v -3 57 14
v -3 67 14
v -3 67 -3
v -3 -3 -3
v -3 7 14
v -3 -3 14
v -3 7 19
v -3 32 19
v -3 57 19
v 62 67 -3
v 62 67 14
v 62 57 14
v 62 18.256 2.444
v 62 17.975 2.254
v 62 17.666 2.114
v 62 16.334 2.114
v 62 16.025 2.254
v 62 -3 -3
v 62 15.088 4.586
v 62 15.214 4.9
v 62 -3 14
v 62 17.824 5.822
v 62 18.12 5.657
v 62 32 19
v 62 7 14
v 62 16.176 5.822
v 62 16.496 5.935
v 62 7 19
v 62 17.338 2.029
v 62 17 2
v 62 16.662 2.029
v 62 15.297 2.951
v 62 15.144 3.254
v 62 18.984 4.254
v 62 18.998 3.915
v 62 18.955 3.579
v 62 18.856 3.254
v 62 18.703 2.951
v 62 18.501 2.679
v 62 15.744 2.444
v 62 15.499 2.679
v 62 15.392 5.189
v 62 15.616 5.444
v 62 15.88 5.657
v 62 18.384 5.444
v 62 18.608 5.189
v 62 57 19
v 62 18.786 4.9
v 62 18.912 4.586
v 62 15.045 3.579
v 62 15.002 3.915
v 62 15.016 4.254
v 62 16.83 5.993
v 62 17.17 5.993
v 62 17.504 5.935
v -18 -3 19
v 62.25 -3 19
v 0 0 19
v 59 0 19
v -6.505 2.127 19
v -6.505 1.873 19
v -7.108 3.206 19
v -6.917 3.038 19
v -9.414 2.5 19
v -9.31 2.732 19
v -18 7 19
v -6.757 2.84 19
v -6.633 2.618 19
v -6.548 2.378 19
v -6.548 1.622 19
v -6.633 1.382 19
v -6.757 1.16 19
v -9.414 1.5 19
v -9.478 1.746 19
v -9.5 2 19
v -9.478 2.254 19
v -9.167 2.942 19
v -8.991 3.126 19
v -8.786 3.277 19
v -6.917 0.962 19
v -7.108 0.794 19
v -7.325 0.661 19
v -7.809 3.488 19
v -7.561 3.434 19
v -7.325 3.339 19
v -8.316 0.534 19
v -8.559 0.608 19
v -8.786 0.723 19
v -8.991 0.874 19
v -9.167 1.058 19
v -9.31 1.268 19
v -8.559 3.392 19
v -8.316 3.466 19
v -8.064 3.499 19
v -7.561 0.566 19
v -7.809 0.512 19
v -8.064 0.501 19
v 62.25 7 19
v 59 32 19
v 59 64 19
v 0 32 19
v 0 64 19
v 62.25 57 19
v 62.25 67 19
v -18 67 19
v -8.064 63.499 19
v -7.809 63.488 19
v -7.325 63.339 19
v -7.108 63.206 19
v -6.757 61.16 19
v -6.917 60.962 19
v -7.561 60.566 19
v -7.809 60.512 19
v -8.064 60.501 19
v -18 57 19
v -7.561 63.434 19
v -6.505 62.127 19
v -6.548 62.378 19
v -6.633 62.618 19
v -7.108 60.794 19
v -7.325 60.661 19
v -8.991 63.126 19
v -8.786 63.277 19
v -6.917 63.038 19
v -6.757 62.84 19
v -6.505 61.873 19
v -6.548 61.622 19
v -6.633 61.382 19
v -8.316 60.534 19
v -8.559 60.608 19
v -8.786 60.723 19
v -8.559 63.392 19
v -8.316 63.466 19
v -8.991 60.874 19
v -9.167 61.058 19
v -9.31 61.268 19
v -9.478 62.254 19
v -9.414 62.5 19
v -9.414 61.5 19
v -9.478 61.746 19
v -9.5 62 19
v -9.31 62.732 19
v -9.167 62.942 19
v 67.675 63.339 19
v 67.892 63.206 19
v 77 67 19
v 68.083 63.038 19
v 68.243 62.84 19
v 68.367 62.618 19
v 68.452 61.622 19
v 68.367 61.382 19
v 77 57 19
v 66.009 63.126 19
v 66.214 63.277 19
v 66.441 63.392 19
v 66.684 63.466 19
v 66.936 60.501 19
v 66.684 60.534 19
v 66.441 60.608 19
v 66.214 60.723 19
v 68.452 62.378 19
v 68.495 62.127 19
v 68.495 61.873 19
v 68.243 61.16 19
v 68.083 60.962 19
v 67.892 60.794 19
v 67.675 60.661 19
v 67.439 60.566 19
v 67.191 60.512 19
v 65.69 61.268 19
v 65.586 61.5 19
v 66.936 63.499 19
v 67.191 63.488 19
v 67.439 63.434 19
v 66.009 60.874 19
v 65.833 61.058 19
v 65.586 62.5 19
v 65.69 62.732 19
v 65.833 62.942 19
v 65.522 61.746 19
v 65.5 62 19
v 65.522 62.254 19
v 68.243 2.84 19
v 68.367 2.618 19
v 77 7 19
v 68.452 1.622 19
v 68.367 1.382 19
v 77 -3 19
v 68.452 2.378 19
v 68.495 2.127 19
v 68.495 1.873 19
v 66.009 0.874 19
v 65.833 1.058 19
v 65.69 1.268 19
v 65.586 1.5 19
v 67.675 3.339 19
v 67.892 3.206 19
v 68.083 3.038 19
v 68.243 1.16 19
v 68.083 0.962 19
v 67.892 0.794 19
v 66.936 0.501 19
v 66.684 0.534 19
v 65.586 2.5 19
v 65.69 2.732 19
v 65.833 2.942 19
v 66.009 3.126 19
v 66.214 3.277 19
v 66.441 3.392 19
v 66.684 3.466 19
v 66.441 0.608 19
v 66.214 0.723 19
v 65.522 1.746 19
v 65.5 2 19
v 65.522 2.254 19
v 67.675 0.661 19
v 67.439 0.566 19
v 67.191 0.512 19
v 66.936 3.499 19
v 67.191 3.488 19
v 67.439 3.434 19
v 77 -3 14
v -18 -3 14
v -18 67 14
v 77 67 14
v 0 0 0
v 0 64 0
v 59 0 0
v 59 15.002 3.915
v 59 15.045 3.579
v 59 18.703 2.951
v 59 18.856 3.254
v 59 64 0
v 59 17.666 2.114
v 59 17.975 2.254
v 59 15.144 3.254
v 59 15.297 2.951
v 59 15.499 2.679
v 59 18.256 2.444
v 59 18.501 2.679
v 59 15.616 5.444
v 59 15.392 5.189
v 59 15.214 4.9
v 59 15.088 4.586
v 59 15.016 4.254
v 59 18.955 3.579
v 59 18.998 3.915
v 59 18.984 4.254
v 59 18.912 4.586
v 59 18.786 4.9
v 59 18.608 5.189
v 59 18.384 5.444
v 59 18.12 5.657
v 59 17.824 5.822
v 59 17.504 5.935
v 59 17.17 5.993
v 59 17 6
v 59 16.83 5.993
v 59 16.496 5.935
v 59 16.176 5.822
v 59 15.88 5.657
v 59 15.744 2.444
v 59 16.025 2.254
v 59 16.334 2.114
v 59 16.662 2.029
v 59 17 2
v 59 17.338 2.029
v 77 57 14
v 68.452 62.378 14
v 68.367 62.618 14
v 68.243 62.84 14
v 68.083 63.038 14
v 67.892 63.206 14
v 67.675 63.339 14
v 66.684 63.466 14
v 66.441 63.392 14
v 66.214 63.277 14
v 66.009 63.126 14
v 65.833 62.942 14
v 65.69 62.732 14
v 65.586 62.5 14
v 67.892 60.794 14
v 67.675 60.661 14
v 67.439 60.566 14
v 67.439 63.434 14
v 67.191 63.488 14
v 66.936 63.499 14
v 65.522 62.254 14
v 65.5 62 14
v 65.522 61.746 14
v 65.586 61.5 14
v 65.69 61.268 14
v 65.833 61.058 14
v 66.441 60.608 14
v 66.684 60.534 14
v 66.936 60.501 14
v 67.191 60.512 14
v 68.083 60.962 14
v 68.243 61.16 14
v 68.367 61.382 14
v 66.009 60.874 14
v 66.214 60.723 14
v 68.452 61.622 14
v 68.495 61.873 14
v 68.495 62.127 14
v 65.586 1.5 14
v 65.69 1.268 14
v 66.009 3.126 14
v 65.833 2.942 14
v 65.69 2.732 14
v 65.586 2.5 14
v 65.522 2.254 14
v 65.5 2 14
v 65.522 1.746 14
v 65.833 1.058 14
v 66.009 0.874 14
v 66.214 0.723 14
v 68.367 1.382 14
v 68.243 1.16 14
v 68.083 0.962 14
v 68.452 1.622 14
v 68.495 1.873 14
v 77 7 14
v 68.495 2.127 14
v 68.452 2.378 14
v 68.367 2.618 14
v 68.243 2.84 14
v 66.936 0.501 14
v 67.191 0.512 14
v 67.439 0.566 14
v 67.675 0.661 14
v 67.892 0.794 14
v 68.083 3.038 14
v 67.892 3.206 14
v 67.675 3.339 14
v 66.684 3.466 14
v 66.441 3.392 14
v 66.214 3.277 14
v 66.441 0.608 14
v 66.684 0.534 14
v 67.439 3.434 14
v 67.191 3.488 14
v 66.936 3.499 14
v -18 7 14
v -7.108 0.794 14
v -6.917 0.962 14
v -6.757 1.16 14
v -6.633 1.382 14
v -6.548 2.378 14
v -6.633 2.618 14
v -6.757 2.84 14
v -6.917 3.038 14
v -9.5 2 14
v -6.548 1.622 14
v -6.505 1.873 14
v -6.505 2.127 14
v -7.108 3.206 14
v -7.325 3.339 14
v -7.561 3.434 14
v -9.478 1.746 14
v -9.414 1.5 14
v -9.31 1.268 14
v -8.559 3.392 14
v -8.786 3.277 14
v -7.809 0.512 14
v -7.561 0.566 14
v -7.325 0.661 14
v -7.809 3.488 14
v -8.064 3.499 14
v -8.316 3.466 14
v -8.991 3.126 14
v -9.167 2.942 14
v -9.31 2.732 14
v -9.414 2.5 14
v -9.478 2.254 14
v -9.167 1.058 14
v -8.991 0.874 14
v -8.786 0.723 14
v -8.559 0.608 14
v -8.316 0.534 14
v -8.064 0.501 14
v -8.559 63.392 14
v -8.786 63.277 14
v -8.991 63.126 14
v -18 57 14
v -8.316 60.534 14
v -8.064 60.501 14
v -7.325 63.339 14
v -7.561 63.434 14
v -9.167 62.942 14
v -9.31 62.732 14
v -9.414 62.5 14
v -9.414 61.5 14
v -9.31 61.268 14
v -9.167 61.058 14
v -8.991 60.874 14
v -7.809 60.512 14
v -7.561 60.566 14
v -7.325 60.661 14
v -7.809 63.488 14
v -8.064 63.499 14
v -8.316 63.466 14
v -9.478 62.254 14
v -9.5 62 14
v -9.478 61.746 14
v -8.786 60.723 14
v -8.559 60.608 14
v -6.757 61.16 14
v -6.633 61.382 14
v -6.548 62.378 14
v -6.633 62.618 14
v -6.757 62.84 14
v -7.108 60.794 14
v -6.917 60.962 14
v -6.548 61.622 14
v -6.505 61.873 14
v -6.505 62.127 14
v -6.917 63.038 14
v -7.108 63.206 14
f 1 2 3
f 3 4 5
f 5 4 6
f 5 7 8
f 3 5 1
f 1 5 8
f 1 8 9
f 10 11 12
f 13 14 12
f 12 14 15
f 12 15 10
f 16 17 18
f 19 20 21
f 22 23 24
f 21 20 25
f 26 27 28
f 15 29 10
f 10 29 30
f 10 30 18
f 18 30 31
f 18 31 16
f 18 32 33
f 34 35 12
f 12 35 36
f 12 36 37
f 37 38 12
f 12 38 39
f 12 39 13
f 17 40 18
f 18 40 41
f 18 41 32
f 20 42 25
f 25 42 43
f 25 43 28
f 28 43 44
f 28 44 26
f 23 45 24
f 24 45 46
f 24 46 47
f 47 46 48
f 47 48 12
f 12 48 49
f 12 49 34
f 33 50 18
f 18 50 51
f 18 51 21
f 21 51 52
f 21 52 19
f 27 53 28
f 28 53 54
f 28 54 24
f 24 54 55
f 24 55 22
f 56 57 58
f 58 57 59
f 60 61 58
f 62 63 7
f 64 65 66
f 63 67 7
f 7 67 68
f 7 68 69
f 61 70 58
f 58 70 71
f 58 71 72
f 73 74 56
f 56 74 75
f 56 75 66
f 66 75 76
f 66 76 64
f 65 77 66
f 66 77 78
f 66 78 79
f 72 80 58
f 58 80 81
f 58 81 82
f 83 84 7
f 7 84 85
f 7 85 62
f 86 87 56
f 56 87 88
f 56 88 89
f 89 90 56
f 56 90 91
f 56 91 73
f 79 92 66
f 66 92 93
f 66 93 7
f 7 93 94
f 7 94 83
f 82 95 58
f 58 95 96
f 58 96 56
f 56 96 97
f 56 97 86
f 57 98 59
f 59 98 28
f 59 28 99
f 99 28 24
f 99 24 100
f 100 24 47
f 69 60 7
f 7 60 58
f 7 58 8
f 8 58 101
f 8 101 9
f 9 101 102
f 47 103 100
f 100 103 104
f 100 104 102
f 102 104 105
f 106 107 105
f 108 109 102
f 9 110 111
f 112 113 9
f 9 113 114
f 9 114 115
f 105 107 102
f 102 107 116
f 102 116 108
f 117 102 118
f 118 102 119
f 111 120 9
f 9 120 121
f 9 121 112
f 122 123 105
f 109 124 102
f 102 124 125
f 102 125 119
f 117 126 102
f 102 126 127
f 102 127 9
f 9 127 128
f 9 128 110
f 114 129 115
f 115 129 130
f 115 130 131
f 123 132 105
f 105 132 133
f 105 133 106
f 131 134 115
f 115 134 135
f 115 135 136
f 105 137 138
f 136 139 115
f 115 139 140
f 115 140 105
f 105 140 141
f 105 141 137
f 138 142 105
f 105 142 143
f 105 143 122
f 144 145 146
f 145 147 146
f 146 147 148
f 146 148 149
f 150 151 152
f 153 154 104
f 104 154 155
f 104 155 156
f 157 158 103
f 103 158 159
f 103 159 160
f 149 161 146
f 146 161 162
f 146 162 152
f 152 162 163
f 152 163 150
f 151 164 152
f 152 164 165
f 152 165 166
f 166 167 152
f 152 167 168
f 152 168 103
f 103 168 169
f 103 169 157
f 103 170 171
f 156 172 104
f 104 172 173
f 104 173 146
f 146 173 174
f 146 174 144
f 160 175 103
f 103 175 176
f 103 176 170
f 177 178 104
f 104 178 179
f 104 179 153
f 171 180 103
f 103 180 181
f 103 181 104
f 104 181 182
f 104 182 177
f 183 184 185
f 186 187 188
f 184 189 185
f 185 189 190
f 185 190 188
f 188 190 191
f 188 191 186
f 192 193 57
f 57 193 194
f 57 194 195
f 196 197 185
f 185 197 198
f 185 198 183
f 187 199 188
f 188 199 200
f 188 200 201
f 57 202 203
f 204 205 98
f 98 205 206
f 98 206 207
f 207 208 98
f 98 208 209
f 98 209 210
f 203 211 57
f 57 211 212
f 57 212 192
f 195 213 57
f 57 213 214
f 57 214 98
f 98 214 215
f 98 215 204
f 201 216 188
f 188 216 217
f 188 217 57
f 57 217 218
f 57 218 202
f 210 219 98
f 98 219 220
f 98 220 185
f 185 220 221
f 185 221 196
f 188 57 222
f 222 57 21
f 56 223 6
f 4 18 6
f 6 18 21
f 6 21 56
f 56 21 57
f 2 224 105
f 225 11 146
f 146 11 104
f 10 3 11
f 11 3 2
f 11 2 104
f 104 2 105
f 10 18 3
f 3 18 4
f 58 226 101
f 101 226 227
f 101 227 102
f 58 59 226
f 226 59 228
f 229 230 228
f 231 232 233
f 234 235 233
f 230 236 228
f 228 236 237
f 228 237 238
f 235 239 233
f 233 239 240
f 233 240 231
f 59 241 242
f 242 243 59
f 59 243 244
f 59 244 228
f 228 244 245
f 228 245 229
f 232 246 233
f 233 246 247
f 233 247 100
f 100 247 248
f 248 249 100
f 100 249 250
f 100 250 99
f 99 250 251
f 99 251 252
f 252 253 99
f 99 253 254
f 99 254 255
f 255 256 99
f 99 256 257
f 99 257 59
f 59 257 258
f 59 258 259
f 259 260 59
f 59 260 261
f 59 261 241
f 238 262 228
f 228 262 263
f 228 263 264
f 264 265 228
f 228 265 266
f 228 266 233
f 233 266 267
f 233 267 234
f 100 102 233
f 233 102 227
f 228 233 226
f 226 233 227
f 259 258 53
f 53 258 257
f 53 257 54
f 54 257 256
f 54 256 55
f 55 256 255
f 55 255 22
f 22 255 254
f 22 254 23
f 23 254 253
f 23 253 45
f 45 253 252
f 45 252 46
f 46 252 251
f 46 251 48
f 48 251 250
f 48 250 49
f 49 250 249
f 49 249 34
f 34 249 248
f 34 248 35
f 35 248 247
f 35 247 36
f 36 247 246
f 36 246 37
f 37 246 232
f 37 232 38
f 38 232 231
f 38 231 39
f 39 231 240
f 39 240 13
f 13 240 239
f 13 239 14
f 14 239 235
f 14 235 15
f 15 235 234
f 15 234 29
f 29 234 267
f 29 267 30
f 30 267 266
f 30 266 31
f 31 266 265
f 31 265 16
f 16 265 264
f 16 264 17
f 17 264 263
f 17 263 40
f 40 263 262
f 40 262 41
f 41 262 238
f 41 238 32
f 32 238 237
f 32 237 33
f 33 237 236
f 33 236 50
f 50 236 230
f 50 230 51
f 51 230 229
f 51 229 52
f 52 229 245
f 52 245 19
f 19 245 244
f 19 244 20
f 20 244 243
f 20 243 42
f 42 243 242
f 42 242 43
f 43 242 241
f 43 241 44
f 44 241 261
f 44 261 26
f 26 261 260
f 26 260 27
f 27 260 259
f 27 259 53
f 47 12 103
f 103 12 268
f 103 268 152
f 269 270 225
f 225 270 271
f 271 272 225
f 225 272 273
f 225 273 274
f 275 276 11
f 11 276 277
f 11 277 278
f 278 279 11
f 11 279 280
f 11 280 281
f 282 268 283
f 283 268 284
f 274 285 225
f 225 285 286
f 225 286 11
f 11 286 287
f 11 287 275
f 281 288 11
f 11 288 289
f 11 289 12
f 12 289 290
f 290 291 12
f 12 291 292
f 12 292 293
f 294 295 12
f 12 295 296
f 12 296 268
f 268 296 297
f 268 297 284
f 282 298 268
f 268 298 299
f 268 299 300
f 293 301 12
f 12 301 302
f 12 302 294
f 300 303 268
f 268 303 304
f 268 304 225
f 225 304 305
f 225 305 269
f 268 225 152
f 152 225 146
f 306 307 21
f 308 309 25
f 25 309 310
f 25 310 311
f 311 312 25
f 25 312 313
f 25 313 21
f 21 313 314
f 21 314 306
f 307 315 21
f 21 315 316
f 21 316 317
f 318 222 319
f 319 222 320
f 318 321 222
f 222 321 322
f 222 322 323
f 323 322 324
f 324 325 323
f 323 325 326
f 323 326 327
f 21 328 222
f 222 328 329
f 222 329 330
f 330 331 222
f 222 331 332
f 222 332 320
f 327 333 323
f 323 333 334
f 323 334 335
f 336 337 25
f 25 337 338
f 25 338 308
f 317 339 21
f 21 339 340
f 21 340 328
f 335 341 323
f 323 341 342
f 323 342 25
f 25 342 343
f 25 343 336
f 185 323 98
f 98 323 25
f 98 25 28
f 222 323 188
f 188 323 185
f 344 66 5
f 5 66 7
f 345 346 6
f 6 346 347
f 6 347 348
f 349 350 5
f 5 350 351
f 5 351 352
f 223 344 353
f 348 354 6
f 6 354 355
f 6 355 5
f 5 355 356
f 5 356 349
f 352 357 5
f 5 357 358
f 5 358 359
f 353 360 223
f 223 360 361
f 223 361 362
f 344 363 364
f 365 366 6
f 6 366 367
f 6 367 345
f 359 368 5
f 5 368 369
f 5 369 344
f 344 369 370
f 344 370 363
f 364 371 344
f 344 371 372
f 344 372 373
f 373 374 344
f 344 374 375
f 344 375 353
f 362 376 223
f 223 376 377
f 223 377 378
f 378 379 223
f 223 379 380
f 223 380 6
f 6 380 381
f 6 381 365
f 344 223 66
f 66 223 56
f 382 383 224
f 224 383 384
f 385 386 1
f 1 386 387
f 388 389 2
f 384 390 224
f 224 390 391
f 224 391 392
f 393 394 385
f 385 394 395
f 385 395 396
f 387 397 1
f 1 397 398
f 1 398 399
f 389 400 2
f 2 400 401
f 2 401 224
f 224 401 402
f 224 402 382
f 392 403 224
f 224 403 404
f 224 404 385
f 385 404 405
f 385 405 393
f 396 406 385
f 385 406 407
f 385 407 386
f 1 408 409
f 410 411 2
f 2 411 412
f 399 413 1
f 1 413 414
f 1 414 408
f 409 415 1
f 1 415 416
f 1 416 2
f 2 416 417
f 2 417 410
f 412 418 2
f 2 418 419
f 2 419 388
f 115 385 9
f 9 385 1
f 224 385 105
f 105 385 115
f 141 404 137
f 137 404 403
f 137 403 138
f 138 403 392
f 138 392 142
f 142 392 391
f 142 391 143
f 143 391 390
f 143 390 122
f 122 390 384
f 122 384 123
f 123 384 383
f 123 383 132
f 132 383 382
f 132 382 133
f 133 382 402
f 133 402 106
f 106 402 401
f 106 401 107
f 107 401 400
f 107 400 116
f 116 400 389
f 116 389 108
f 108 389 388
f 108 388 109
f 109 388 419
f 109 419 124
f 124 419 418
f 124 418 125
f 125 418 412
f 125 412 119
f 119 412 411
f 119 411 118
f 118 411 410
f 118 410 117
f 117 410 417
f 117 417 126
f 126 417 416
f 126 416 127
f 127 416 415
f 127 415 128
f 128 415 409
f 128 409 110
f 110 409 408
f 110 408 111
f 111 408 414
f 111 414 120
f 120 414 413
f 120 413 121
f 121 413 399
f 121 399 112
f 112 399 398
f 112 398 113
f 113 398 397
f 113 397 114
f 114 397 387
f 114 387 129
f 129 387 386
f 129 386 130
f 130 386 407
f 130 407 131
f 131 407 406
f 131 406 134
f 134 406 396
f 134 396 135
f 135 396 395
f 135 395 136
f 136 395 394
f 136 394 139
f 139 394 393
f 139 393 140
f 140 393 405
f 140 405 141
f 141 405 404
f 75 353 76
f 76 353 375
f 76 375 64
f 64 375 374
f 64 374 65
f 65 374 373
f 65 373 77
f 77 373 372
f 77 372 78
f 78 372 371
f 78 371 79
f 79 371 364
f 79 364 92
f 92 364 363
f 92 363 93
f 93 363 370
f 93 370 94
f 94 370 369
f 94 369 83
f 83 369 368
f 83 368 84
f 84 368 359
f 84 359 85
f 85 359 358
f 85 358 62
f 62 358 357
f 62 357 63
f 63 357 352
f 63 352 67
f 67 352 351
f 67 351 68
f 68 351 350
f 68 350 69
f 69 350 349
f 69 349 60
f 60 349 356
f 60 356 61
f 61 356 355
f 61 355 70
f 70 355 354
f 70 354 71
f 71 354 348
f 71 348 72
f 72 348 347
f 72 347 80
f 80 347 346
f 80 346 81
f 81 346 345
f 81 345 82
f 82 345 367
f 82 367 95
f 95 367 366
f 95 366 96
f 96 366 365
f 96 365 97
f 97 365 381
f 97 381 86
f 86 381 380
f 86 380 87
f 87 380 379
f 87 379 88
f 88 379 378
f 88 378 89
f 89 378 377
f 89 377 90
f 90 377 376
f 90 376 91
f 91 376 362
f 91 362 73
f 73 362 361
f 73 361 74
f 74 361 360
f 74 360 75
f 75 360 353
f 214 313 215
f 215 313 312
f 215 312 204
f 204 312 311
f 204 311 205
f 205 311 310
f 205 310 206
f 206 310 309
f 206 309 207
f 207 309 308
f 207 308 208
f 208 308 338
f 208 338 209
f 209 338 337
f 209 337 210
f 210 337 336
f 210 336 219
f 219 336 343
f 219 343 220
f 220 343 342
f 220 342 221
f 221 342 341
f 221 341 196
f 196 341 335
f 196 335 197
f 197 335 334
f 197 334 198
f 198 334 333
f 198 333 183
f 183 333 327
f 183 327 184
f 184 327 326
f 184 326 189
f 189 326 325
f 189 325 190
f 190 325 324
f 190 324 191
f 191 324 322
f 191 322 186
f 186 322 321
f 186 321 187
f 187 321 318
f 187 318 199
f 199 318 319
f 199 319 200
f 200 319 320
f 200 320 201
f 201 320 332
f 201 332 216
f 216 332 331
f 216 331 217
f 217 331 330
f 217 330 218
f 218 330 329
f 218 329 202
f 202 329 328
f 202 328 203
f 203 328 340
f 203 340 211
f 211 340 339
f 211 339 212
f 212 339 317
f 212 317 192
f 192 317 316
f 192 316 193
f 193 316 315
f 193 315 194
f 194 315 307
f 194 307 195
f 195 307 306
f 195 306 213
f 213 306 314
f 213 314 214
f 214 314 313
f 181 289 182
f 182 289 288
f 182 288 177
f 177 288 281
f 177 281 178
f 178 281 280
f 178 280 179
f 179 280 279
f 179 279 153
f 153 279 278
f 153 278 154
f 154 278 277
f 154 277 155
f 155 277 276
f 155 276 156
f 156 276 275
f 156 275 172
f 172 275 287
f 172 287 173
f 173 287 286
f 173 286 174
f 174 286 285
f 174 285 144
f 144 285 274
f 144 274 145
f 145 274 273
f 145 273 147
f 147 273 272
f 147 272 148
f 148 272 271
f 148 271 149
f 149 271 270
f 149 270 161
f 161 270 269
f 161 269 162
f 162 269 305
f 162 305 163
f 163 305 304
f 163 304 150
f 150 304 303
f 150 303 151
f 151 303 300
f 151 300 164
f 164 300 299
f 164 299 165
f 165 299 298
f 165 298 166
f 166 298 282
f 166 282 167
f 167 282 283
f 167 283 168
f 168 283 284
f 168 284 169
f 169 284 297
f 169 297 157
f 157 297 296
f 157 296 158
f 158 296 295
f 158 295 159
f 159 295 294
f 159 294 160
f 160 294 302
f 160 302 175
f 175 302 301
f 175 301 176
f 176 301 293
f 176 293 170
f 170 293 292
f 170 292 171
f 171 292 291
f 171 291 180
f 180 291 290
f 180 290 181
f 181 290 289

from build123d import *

# Parameters (mm, degrees)
SKETCH1_W           = 59
SKETCH1_H           = 64
BOSS_EXTRUDE1_DEPTH = 19
SHELL1_T            = 3
SKETCH2_R           = 2
CUT_EXTRUDE1_DEPTH  = 19
SKETCH3_W           = 5
SKETCH3_H           = 10
BOSS_EXTRUDE2_DEPTH = 15
SKETCH4_W           = 5
SKETCH4_H           = 10
BOSS_EXTRUDE3_DEPTH = 15
SKETCH5_R           = 1.5
CUT_EXTRUDE2_DEPTH  = 10


with BuildPart() as part:
    # Sketch1 → Boss-Extrude1 (new body)
    with BuildSketch(Plane.XY):
        with Locations((29.5, 32)):
            Rectangle(SKETCH1_W, SKETCH1_H)
    extrude(amount=BOSS_EXTRUDE1_DEPTH)

    # Shell1
    shell1_openings = [part.faces().sort_by_distance(p)[0] for p in [
        (29.5, 32, 19),
    ]]
    offset(amount=SHELL1_T, openings=shell1_openings, kind=Kind.INTERSECTION)

    # Sketch2 → Cut-Extrude1 (cut)
    with BuildSketch(Plane(origin=(62, 0, 0), x_dir=(0, 0, -1), z_dir=(1, 0, 0))):
        with Locations((-4, 17)):
            Circle(SKETCH2_R)
    extrude(amount=-CUT_EXTRUDE1_DEPTH, mode=Mode.SUBTRACT)

    # Sketch3 → Boss-Extrude2 (add)
    with BuildSketch(Plane(origin=(62, 0, 0), x_dir=(0, 0, -1), z_dir=(1, 0, 0))):
        with Locations((-16.5, 62)):
            Rectangle(SKETCH3_W, SKETCH3_H)
        with Locations((-16.5, 2)):
            Rectangle(SKETCH3_W, SKETCH3_H)
    extrude(amount=BOSS_EXTRUDE2_DEPTH)

    # Sketch4 → Boss-Extrude3 (add)
    with BuildSketch(Plane.ZY.offset(3)):
        with Locations((16.5, 2)):
            Rectangle(SKETCH4_W, SKETCH4_H)
        with Locations((16.5, 62)):
            Rectangle(SKETCH4_W, SKETCH4_H)
    extrude(amount=BOSS_EXTRUDE3_DEPTH)

    # Sketch5 → Cut-Extrude2 (cut)
    with BuildSketch(Plane(origin=(0, 0, 14), x_dir=(-1, 0, 0), z_dir=(0, 0, -1))):
        with Locations((-67, 62)):
            Circle(SKETCH5_R)
        with Locations((8, 2)):
            Circle(SKETCH5_R)
        with Locations((-67, 2)):
            Circle(SKETCH5_R)
        with Locations((8, 62)):
            Circle(SKETCH5_R)
    extrude(amount=-CUT_EXTRUDE2_DEPTH, mode=Mode.SUBTRACT)


solid = part.part
